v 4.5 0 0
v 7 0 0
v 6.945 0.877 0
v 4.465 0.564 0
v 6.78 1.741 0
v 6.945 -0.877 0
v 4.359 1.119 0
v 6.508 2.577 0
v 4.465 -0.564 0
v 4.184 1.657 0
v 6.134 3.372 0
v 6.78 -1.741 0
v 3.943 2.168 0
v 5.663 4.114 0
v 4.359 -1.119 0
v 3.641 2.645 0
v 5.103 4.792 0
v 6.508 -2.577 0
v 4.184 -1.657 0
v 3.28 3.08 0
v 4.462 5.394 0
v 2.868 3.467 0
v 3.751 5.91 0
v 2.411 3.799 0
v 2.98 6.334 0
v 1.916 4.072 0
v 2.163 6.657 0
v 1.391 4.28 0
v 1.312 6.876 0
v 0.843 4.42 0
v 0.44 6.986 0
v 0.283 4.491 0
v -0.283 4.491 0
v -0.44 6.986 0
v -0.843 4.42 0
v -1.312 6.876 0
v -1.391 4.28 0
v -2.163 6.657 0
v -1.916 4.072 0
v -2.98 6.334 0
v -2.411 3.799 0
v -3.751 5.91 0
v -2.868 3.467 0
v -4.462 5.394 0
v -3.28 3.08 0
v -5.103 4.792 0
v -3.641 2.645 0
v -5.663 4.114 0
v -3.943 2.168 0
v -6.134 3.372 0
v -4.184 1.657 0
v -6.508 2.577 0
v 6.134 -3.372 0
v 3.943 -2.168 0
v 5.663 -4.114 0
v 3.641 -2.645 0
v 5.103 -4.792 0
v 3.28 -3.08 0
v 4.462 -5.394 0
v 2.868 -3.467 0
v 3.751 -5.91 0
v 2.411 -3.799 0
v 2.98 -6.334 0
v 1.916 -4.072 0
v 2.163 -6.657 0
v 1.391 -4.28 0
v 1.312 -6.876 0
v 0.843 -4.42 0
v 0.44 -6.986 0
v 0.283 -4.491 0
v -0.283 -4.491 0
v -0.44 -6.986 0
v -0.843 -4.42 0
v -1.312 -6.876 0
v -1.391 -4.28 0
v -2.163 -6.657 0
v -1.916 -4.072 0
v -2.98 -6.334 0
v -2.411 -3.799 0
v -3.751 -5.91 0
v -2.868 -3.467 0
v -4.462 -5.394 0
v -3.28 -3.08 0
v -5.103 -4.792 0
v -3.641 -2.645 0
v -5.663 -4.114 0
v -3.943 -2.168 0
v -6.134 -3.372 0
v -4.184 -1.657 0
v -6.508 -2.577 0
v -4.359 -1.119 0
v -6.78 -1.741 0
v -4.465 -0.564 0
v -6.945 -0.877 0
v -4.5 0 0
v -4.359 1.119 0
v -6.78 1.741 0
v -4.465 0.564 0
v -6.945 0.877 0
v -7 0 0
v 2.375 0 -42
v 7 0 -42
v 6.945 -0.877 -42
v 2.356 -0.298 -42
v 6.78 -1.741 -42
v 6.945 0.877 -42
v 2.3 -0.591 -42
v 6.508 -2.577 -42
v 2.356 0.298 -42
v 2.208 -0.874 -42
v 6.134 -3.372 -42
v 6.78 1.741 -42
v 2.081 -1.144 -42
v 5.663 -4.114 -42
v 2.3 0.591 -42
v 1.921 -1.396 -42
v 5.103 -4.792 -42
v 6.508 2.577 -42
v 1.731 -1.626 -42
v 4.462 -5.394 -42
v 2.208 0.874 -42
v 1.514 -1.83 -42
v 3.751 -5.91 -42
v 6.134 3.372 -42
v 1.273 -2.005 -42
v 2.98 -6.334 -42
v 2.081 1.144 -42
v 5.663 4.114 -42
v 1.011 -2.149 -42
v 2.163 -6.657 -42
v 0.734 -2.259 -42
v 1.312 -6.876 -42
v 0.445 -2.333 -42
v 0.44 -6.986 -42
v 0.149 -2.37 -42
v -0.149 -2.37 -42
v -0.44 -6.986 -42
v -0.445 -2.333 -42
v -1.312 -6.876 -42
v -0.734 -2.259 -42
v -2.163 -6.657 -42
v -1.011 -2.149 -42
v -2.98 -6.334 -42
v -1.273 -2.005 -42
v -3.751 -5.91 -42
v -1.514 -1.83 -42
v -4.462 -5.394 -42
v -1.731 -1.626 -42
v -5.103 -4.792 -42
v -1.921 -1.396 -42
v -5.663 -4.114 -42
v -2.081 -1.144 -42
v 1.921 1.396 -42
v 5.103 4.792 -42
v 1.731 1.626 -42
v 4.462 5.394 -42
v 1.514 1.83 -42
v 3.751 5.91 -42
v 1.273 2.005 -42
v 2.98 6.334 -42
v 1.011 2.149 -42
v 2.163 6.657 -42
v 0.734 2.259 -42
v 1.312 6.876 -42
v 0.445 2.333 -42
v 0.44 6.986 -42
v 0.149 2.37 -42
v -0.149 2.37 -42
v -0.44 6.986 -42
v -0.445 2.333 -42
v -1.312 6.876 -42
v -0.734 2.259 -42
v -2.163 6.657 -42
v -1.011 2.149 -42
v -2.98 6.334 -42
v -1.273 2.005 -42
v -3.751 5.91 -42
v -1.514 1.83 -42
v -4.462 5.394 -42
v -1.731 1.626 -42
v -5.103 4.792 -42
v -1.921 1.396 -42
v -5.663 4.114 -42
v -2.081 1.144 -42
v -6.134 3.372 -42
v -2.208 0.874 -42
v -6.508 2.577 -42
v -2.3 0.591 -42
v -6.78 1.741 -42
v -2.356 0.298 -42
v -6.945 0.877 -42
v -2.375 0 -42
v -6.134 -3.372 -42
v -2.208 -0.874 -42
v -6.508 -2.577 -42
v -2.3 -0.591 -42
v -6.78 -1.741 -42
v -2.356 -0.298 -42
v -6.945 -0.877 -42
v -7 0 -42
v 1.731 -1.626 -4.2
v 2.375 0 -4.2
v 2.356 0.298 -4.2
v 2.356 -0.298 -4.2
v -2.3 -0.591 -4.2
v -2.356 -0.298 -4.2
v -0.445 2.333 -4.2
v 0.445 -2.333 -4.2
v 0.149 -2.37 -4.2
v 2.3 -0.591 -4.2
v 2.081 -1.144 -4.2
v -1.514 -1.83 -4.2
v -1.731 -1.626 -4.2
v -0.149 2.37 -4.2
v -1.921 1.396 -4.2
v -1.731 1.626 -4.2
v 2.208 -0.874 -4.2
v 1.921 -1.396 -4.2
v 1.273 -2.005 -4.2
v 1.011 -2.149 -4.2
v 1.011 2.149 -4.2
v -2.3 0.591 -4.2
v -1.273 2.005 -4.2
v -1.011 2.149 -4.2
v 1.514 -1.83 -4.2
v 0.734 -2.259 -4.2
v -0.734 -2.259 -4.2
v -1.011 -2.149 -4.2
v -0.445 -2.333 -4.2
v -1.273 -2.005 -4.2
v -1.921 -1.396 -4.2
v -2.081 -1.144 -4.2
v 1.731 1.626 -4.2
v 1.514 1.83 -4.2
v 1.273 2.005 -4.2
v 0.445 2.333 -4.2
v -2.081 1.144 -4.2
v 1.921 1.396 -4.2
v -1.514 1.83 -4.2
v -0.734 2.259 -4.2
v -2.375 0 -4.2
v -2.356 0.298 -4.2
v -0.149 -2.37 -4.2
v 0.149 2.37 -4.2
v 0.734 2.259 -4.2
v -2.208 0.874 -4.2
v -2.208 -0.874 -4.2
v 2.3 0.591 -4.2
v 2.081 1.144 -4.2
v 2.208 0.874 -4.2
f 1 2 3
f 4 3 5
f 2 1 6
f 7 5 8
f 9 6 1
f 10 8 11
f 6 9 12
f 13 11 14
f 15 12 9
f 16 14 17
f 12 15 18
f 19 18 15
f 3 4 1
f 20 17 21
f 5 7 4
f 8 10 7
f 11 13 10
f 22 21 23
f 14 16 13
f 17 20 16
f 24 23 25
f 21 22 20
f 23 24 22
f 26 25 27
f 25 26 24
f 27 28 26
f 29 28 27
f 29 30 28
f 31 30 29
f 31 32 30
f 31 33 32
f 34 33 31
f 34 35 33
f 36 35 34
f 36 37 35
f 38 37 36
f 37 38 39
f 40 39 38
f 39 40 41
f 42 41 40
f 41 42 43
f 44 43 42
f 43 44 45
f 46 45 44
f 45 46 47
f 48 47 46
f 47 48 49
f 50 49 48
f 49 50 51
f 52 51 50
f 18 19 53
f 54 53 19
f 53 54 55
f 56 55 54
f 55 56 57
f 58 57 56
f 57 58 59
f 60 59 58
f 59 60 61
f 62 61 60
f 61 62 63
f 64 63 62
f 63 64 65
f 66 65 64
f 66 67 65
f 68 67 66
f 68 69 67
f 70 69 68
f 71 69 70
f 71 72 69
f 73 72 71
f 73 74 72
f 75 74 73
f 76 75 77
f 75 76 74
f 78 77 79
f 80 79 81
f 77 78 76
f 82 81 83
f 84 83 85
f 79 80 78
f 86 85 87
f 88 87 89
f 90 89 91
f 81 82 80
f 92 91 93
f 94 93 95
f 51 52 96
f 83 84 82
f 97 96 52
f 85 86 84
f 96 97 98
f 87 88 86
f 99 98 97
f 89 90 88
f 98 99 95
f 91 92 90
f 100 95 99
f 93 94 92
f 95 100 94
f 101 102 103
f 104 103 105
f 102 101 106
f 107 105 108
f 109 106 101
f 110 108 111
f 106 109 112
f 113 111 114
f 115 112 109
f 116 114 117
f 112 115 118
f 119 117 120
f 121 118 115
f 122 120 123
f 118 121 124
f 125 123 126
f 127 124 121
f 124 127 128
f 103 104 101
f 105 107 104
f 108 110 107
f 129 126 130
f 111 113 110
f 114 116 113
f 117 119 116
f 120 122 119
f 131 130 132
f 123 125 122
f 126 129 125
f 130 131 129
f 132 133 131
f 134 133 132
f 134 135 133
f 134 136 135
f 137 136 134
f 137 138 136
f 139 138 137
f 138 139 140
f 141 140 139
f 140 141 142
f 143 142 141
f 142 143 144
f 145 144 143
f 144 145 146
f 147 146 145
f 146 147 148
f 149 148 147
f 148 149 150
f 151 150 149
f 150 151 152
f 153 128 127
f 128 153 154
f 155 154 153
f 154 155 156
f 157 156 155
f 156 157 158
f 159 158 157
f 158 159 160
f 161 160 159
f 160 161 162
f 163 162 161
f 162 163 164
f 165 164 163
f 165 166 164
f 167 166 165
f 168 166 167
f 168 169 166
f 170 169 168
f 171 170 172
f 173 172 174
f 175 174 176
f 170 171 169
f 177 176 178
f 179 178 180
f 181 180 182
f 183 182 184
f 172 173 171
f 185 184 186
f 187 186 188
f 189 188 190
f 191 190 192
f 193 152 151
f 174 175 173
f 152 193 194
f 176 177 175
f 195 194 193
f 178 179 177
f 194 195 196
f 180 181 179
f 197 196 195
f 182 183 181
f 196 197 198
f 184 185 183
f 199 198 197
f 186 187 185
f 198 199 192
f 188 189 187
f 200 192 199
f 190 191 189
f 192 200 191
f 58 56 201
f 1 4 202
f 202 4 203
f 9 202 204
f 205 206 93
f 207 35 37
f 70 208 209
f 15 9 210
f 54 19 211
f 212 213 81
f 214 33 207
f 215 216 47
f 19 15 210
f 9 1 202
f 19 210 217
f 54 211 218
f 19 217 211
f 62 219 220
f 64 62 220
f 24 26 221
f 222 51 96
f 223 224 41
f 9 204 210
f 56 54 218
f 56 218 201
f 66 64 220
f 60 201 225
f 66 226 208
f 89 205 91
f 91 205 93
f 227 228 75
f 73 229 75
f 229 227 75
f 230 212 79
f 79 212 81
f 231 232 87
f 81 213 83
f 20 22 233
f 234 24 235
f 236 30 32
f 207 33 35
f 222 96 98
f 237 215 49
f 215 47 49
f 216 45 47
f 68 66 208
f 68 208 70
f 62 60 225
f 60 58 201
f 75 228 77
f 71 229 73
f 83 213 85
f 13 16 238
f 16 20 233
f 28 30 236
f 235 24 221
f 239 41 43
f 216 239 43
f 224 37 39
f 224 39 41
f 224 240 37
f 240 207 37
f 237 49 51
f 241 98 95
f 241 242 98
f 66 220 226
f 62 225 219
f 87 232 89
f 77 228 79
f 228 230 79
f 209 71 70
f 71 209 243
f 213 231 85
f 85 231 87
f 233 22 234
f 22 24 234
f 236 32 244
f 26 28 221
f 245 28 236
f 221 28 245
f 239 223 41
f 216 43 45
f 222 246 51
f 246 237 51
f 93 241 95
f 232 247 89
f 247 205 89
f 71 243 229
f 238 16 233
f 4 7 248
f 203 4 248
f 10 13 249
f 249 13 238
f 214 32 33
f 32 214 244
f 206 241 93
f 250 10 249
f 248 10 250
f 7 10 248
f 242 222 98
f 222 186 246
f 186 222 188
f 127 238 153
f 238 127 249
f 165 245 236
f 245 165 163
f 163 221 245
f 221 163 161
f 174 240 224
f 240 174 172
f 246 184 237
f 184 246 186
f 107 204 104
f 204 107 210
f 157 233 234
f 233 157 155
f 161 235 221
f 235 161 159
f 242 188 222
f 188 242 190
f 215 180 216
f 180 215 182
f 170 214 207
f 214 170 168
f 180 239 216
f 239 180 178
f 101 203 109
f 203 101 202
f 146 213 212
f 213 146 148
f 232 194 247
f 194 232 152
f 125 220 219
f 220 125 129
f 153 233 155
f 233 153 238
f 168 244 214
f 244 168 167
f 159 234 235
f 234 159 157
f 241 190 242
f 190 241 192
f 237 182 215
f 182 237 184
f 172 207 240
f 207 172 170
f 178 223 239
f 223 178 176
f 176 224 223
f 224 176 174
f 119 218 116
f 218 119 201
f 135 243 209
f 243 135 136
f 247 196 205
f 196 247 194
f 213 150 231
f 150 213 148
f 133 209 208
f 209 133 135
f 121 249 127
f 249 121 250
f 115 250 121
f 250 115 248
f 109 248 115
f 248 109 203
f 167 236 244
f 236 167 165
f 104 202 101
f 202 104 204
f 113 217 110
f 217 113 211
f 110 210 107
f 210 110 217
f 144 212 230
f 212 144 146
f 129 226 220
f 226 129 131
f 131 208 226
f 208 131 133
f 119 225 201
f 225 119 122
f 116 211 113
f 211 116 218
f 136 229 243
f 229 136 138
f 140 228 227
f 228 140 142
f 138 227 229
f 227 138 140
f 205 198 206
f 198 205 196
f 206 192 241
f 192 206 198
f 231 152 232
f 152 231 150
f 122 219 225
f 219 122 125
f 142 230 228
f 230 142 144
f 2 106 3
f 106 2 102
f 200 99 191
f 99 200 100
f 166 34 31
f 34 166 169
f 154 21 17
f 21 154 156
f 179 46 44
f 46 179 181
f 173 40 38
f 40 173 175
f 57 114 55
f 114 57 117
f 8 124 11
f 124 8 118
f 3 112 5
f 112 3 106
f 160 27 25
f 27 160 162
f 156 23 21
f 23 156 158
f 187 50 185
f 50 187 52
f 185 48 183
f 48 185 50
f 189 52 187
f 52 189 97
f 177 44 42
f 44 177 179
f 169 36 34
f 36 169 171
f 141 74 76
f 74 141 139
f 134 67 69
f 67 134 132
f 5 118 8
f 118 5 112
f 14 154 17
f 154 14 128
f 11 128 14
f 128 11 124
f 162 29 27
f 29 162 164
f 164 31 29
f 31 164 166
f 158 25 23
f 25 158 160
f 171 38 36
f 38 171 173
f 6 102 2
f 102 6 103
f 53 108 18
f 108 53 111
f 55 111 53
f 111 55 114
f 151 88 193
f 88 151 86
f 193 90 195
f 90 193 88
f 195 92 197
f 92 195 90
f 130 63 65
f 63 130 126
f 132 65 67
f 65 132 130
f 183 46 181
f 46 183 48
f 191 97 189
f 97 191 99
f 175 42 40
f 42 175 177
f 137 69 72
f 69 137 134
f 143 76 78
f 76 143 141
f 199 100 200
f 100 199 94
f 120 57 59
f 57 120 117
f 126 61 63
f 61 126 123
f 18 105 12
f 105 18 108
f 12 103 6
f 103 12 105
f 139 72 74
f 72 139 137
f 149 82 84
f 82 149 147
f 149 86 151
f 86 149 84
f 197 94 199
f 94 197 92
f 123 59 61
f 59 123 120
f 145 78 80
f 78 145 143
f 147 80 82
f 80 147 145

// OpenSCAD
$fn = 50;


difference() {
	union() {
		translate(v = [0, 0, -42.0000000000]) {
			cylinder(h = 42, r = 7.0000000000);
		}
		cylinder(h = 0, r = 13.0000000000);
	}
	union() {
		translate(v = [0, 0, 0]) {
			rotate(a = [0, 0, 0]) {
				difference() {
					union() {
						#translate(v = [0, 0, -42.0000000000]) {
							cylinder(h = 42, r = 2.2500000000);
						}
						#translate(v = [0, 0, -4.2000000000]) {
							cylinder(h = 4.2000000000, r = 7.0000000000, r1 = 2.3750000000, r2 = 4.5000000000);
						}
						#translate(v = [0, 0, -42.0000000000]) {
							cylinder(h = 42, r = 2.3750000000);
						}
						#translate(v = [0, 0, -42.0000000000]) {
							cylinder(h = 42, r = 2.2500000000);
						}
					}
					union();
				}
			}
		}
	}
}
